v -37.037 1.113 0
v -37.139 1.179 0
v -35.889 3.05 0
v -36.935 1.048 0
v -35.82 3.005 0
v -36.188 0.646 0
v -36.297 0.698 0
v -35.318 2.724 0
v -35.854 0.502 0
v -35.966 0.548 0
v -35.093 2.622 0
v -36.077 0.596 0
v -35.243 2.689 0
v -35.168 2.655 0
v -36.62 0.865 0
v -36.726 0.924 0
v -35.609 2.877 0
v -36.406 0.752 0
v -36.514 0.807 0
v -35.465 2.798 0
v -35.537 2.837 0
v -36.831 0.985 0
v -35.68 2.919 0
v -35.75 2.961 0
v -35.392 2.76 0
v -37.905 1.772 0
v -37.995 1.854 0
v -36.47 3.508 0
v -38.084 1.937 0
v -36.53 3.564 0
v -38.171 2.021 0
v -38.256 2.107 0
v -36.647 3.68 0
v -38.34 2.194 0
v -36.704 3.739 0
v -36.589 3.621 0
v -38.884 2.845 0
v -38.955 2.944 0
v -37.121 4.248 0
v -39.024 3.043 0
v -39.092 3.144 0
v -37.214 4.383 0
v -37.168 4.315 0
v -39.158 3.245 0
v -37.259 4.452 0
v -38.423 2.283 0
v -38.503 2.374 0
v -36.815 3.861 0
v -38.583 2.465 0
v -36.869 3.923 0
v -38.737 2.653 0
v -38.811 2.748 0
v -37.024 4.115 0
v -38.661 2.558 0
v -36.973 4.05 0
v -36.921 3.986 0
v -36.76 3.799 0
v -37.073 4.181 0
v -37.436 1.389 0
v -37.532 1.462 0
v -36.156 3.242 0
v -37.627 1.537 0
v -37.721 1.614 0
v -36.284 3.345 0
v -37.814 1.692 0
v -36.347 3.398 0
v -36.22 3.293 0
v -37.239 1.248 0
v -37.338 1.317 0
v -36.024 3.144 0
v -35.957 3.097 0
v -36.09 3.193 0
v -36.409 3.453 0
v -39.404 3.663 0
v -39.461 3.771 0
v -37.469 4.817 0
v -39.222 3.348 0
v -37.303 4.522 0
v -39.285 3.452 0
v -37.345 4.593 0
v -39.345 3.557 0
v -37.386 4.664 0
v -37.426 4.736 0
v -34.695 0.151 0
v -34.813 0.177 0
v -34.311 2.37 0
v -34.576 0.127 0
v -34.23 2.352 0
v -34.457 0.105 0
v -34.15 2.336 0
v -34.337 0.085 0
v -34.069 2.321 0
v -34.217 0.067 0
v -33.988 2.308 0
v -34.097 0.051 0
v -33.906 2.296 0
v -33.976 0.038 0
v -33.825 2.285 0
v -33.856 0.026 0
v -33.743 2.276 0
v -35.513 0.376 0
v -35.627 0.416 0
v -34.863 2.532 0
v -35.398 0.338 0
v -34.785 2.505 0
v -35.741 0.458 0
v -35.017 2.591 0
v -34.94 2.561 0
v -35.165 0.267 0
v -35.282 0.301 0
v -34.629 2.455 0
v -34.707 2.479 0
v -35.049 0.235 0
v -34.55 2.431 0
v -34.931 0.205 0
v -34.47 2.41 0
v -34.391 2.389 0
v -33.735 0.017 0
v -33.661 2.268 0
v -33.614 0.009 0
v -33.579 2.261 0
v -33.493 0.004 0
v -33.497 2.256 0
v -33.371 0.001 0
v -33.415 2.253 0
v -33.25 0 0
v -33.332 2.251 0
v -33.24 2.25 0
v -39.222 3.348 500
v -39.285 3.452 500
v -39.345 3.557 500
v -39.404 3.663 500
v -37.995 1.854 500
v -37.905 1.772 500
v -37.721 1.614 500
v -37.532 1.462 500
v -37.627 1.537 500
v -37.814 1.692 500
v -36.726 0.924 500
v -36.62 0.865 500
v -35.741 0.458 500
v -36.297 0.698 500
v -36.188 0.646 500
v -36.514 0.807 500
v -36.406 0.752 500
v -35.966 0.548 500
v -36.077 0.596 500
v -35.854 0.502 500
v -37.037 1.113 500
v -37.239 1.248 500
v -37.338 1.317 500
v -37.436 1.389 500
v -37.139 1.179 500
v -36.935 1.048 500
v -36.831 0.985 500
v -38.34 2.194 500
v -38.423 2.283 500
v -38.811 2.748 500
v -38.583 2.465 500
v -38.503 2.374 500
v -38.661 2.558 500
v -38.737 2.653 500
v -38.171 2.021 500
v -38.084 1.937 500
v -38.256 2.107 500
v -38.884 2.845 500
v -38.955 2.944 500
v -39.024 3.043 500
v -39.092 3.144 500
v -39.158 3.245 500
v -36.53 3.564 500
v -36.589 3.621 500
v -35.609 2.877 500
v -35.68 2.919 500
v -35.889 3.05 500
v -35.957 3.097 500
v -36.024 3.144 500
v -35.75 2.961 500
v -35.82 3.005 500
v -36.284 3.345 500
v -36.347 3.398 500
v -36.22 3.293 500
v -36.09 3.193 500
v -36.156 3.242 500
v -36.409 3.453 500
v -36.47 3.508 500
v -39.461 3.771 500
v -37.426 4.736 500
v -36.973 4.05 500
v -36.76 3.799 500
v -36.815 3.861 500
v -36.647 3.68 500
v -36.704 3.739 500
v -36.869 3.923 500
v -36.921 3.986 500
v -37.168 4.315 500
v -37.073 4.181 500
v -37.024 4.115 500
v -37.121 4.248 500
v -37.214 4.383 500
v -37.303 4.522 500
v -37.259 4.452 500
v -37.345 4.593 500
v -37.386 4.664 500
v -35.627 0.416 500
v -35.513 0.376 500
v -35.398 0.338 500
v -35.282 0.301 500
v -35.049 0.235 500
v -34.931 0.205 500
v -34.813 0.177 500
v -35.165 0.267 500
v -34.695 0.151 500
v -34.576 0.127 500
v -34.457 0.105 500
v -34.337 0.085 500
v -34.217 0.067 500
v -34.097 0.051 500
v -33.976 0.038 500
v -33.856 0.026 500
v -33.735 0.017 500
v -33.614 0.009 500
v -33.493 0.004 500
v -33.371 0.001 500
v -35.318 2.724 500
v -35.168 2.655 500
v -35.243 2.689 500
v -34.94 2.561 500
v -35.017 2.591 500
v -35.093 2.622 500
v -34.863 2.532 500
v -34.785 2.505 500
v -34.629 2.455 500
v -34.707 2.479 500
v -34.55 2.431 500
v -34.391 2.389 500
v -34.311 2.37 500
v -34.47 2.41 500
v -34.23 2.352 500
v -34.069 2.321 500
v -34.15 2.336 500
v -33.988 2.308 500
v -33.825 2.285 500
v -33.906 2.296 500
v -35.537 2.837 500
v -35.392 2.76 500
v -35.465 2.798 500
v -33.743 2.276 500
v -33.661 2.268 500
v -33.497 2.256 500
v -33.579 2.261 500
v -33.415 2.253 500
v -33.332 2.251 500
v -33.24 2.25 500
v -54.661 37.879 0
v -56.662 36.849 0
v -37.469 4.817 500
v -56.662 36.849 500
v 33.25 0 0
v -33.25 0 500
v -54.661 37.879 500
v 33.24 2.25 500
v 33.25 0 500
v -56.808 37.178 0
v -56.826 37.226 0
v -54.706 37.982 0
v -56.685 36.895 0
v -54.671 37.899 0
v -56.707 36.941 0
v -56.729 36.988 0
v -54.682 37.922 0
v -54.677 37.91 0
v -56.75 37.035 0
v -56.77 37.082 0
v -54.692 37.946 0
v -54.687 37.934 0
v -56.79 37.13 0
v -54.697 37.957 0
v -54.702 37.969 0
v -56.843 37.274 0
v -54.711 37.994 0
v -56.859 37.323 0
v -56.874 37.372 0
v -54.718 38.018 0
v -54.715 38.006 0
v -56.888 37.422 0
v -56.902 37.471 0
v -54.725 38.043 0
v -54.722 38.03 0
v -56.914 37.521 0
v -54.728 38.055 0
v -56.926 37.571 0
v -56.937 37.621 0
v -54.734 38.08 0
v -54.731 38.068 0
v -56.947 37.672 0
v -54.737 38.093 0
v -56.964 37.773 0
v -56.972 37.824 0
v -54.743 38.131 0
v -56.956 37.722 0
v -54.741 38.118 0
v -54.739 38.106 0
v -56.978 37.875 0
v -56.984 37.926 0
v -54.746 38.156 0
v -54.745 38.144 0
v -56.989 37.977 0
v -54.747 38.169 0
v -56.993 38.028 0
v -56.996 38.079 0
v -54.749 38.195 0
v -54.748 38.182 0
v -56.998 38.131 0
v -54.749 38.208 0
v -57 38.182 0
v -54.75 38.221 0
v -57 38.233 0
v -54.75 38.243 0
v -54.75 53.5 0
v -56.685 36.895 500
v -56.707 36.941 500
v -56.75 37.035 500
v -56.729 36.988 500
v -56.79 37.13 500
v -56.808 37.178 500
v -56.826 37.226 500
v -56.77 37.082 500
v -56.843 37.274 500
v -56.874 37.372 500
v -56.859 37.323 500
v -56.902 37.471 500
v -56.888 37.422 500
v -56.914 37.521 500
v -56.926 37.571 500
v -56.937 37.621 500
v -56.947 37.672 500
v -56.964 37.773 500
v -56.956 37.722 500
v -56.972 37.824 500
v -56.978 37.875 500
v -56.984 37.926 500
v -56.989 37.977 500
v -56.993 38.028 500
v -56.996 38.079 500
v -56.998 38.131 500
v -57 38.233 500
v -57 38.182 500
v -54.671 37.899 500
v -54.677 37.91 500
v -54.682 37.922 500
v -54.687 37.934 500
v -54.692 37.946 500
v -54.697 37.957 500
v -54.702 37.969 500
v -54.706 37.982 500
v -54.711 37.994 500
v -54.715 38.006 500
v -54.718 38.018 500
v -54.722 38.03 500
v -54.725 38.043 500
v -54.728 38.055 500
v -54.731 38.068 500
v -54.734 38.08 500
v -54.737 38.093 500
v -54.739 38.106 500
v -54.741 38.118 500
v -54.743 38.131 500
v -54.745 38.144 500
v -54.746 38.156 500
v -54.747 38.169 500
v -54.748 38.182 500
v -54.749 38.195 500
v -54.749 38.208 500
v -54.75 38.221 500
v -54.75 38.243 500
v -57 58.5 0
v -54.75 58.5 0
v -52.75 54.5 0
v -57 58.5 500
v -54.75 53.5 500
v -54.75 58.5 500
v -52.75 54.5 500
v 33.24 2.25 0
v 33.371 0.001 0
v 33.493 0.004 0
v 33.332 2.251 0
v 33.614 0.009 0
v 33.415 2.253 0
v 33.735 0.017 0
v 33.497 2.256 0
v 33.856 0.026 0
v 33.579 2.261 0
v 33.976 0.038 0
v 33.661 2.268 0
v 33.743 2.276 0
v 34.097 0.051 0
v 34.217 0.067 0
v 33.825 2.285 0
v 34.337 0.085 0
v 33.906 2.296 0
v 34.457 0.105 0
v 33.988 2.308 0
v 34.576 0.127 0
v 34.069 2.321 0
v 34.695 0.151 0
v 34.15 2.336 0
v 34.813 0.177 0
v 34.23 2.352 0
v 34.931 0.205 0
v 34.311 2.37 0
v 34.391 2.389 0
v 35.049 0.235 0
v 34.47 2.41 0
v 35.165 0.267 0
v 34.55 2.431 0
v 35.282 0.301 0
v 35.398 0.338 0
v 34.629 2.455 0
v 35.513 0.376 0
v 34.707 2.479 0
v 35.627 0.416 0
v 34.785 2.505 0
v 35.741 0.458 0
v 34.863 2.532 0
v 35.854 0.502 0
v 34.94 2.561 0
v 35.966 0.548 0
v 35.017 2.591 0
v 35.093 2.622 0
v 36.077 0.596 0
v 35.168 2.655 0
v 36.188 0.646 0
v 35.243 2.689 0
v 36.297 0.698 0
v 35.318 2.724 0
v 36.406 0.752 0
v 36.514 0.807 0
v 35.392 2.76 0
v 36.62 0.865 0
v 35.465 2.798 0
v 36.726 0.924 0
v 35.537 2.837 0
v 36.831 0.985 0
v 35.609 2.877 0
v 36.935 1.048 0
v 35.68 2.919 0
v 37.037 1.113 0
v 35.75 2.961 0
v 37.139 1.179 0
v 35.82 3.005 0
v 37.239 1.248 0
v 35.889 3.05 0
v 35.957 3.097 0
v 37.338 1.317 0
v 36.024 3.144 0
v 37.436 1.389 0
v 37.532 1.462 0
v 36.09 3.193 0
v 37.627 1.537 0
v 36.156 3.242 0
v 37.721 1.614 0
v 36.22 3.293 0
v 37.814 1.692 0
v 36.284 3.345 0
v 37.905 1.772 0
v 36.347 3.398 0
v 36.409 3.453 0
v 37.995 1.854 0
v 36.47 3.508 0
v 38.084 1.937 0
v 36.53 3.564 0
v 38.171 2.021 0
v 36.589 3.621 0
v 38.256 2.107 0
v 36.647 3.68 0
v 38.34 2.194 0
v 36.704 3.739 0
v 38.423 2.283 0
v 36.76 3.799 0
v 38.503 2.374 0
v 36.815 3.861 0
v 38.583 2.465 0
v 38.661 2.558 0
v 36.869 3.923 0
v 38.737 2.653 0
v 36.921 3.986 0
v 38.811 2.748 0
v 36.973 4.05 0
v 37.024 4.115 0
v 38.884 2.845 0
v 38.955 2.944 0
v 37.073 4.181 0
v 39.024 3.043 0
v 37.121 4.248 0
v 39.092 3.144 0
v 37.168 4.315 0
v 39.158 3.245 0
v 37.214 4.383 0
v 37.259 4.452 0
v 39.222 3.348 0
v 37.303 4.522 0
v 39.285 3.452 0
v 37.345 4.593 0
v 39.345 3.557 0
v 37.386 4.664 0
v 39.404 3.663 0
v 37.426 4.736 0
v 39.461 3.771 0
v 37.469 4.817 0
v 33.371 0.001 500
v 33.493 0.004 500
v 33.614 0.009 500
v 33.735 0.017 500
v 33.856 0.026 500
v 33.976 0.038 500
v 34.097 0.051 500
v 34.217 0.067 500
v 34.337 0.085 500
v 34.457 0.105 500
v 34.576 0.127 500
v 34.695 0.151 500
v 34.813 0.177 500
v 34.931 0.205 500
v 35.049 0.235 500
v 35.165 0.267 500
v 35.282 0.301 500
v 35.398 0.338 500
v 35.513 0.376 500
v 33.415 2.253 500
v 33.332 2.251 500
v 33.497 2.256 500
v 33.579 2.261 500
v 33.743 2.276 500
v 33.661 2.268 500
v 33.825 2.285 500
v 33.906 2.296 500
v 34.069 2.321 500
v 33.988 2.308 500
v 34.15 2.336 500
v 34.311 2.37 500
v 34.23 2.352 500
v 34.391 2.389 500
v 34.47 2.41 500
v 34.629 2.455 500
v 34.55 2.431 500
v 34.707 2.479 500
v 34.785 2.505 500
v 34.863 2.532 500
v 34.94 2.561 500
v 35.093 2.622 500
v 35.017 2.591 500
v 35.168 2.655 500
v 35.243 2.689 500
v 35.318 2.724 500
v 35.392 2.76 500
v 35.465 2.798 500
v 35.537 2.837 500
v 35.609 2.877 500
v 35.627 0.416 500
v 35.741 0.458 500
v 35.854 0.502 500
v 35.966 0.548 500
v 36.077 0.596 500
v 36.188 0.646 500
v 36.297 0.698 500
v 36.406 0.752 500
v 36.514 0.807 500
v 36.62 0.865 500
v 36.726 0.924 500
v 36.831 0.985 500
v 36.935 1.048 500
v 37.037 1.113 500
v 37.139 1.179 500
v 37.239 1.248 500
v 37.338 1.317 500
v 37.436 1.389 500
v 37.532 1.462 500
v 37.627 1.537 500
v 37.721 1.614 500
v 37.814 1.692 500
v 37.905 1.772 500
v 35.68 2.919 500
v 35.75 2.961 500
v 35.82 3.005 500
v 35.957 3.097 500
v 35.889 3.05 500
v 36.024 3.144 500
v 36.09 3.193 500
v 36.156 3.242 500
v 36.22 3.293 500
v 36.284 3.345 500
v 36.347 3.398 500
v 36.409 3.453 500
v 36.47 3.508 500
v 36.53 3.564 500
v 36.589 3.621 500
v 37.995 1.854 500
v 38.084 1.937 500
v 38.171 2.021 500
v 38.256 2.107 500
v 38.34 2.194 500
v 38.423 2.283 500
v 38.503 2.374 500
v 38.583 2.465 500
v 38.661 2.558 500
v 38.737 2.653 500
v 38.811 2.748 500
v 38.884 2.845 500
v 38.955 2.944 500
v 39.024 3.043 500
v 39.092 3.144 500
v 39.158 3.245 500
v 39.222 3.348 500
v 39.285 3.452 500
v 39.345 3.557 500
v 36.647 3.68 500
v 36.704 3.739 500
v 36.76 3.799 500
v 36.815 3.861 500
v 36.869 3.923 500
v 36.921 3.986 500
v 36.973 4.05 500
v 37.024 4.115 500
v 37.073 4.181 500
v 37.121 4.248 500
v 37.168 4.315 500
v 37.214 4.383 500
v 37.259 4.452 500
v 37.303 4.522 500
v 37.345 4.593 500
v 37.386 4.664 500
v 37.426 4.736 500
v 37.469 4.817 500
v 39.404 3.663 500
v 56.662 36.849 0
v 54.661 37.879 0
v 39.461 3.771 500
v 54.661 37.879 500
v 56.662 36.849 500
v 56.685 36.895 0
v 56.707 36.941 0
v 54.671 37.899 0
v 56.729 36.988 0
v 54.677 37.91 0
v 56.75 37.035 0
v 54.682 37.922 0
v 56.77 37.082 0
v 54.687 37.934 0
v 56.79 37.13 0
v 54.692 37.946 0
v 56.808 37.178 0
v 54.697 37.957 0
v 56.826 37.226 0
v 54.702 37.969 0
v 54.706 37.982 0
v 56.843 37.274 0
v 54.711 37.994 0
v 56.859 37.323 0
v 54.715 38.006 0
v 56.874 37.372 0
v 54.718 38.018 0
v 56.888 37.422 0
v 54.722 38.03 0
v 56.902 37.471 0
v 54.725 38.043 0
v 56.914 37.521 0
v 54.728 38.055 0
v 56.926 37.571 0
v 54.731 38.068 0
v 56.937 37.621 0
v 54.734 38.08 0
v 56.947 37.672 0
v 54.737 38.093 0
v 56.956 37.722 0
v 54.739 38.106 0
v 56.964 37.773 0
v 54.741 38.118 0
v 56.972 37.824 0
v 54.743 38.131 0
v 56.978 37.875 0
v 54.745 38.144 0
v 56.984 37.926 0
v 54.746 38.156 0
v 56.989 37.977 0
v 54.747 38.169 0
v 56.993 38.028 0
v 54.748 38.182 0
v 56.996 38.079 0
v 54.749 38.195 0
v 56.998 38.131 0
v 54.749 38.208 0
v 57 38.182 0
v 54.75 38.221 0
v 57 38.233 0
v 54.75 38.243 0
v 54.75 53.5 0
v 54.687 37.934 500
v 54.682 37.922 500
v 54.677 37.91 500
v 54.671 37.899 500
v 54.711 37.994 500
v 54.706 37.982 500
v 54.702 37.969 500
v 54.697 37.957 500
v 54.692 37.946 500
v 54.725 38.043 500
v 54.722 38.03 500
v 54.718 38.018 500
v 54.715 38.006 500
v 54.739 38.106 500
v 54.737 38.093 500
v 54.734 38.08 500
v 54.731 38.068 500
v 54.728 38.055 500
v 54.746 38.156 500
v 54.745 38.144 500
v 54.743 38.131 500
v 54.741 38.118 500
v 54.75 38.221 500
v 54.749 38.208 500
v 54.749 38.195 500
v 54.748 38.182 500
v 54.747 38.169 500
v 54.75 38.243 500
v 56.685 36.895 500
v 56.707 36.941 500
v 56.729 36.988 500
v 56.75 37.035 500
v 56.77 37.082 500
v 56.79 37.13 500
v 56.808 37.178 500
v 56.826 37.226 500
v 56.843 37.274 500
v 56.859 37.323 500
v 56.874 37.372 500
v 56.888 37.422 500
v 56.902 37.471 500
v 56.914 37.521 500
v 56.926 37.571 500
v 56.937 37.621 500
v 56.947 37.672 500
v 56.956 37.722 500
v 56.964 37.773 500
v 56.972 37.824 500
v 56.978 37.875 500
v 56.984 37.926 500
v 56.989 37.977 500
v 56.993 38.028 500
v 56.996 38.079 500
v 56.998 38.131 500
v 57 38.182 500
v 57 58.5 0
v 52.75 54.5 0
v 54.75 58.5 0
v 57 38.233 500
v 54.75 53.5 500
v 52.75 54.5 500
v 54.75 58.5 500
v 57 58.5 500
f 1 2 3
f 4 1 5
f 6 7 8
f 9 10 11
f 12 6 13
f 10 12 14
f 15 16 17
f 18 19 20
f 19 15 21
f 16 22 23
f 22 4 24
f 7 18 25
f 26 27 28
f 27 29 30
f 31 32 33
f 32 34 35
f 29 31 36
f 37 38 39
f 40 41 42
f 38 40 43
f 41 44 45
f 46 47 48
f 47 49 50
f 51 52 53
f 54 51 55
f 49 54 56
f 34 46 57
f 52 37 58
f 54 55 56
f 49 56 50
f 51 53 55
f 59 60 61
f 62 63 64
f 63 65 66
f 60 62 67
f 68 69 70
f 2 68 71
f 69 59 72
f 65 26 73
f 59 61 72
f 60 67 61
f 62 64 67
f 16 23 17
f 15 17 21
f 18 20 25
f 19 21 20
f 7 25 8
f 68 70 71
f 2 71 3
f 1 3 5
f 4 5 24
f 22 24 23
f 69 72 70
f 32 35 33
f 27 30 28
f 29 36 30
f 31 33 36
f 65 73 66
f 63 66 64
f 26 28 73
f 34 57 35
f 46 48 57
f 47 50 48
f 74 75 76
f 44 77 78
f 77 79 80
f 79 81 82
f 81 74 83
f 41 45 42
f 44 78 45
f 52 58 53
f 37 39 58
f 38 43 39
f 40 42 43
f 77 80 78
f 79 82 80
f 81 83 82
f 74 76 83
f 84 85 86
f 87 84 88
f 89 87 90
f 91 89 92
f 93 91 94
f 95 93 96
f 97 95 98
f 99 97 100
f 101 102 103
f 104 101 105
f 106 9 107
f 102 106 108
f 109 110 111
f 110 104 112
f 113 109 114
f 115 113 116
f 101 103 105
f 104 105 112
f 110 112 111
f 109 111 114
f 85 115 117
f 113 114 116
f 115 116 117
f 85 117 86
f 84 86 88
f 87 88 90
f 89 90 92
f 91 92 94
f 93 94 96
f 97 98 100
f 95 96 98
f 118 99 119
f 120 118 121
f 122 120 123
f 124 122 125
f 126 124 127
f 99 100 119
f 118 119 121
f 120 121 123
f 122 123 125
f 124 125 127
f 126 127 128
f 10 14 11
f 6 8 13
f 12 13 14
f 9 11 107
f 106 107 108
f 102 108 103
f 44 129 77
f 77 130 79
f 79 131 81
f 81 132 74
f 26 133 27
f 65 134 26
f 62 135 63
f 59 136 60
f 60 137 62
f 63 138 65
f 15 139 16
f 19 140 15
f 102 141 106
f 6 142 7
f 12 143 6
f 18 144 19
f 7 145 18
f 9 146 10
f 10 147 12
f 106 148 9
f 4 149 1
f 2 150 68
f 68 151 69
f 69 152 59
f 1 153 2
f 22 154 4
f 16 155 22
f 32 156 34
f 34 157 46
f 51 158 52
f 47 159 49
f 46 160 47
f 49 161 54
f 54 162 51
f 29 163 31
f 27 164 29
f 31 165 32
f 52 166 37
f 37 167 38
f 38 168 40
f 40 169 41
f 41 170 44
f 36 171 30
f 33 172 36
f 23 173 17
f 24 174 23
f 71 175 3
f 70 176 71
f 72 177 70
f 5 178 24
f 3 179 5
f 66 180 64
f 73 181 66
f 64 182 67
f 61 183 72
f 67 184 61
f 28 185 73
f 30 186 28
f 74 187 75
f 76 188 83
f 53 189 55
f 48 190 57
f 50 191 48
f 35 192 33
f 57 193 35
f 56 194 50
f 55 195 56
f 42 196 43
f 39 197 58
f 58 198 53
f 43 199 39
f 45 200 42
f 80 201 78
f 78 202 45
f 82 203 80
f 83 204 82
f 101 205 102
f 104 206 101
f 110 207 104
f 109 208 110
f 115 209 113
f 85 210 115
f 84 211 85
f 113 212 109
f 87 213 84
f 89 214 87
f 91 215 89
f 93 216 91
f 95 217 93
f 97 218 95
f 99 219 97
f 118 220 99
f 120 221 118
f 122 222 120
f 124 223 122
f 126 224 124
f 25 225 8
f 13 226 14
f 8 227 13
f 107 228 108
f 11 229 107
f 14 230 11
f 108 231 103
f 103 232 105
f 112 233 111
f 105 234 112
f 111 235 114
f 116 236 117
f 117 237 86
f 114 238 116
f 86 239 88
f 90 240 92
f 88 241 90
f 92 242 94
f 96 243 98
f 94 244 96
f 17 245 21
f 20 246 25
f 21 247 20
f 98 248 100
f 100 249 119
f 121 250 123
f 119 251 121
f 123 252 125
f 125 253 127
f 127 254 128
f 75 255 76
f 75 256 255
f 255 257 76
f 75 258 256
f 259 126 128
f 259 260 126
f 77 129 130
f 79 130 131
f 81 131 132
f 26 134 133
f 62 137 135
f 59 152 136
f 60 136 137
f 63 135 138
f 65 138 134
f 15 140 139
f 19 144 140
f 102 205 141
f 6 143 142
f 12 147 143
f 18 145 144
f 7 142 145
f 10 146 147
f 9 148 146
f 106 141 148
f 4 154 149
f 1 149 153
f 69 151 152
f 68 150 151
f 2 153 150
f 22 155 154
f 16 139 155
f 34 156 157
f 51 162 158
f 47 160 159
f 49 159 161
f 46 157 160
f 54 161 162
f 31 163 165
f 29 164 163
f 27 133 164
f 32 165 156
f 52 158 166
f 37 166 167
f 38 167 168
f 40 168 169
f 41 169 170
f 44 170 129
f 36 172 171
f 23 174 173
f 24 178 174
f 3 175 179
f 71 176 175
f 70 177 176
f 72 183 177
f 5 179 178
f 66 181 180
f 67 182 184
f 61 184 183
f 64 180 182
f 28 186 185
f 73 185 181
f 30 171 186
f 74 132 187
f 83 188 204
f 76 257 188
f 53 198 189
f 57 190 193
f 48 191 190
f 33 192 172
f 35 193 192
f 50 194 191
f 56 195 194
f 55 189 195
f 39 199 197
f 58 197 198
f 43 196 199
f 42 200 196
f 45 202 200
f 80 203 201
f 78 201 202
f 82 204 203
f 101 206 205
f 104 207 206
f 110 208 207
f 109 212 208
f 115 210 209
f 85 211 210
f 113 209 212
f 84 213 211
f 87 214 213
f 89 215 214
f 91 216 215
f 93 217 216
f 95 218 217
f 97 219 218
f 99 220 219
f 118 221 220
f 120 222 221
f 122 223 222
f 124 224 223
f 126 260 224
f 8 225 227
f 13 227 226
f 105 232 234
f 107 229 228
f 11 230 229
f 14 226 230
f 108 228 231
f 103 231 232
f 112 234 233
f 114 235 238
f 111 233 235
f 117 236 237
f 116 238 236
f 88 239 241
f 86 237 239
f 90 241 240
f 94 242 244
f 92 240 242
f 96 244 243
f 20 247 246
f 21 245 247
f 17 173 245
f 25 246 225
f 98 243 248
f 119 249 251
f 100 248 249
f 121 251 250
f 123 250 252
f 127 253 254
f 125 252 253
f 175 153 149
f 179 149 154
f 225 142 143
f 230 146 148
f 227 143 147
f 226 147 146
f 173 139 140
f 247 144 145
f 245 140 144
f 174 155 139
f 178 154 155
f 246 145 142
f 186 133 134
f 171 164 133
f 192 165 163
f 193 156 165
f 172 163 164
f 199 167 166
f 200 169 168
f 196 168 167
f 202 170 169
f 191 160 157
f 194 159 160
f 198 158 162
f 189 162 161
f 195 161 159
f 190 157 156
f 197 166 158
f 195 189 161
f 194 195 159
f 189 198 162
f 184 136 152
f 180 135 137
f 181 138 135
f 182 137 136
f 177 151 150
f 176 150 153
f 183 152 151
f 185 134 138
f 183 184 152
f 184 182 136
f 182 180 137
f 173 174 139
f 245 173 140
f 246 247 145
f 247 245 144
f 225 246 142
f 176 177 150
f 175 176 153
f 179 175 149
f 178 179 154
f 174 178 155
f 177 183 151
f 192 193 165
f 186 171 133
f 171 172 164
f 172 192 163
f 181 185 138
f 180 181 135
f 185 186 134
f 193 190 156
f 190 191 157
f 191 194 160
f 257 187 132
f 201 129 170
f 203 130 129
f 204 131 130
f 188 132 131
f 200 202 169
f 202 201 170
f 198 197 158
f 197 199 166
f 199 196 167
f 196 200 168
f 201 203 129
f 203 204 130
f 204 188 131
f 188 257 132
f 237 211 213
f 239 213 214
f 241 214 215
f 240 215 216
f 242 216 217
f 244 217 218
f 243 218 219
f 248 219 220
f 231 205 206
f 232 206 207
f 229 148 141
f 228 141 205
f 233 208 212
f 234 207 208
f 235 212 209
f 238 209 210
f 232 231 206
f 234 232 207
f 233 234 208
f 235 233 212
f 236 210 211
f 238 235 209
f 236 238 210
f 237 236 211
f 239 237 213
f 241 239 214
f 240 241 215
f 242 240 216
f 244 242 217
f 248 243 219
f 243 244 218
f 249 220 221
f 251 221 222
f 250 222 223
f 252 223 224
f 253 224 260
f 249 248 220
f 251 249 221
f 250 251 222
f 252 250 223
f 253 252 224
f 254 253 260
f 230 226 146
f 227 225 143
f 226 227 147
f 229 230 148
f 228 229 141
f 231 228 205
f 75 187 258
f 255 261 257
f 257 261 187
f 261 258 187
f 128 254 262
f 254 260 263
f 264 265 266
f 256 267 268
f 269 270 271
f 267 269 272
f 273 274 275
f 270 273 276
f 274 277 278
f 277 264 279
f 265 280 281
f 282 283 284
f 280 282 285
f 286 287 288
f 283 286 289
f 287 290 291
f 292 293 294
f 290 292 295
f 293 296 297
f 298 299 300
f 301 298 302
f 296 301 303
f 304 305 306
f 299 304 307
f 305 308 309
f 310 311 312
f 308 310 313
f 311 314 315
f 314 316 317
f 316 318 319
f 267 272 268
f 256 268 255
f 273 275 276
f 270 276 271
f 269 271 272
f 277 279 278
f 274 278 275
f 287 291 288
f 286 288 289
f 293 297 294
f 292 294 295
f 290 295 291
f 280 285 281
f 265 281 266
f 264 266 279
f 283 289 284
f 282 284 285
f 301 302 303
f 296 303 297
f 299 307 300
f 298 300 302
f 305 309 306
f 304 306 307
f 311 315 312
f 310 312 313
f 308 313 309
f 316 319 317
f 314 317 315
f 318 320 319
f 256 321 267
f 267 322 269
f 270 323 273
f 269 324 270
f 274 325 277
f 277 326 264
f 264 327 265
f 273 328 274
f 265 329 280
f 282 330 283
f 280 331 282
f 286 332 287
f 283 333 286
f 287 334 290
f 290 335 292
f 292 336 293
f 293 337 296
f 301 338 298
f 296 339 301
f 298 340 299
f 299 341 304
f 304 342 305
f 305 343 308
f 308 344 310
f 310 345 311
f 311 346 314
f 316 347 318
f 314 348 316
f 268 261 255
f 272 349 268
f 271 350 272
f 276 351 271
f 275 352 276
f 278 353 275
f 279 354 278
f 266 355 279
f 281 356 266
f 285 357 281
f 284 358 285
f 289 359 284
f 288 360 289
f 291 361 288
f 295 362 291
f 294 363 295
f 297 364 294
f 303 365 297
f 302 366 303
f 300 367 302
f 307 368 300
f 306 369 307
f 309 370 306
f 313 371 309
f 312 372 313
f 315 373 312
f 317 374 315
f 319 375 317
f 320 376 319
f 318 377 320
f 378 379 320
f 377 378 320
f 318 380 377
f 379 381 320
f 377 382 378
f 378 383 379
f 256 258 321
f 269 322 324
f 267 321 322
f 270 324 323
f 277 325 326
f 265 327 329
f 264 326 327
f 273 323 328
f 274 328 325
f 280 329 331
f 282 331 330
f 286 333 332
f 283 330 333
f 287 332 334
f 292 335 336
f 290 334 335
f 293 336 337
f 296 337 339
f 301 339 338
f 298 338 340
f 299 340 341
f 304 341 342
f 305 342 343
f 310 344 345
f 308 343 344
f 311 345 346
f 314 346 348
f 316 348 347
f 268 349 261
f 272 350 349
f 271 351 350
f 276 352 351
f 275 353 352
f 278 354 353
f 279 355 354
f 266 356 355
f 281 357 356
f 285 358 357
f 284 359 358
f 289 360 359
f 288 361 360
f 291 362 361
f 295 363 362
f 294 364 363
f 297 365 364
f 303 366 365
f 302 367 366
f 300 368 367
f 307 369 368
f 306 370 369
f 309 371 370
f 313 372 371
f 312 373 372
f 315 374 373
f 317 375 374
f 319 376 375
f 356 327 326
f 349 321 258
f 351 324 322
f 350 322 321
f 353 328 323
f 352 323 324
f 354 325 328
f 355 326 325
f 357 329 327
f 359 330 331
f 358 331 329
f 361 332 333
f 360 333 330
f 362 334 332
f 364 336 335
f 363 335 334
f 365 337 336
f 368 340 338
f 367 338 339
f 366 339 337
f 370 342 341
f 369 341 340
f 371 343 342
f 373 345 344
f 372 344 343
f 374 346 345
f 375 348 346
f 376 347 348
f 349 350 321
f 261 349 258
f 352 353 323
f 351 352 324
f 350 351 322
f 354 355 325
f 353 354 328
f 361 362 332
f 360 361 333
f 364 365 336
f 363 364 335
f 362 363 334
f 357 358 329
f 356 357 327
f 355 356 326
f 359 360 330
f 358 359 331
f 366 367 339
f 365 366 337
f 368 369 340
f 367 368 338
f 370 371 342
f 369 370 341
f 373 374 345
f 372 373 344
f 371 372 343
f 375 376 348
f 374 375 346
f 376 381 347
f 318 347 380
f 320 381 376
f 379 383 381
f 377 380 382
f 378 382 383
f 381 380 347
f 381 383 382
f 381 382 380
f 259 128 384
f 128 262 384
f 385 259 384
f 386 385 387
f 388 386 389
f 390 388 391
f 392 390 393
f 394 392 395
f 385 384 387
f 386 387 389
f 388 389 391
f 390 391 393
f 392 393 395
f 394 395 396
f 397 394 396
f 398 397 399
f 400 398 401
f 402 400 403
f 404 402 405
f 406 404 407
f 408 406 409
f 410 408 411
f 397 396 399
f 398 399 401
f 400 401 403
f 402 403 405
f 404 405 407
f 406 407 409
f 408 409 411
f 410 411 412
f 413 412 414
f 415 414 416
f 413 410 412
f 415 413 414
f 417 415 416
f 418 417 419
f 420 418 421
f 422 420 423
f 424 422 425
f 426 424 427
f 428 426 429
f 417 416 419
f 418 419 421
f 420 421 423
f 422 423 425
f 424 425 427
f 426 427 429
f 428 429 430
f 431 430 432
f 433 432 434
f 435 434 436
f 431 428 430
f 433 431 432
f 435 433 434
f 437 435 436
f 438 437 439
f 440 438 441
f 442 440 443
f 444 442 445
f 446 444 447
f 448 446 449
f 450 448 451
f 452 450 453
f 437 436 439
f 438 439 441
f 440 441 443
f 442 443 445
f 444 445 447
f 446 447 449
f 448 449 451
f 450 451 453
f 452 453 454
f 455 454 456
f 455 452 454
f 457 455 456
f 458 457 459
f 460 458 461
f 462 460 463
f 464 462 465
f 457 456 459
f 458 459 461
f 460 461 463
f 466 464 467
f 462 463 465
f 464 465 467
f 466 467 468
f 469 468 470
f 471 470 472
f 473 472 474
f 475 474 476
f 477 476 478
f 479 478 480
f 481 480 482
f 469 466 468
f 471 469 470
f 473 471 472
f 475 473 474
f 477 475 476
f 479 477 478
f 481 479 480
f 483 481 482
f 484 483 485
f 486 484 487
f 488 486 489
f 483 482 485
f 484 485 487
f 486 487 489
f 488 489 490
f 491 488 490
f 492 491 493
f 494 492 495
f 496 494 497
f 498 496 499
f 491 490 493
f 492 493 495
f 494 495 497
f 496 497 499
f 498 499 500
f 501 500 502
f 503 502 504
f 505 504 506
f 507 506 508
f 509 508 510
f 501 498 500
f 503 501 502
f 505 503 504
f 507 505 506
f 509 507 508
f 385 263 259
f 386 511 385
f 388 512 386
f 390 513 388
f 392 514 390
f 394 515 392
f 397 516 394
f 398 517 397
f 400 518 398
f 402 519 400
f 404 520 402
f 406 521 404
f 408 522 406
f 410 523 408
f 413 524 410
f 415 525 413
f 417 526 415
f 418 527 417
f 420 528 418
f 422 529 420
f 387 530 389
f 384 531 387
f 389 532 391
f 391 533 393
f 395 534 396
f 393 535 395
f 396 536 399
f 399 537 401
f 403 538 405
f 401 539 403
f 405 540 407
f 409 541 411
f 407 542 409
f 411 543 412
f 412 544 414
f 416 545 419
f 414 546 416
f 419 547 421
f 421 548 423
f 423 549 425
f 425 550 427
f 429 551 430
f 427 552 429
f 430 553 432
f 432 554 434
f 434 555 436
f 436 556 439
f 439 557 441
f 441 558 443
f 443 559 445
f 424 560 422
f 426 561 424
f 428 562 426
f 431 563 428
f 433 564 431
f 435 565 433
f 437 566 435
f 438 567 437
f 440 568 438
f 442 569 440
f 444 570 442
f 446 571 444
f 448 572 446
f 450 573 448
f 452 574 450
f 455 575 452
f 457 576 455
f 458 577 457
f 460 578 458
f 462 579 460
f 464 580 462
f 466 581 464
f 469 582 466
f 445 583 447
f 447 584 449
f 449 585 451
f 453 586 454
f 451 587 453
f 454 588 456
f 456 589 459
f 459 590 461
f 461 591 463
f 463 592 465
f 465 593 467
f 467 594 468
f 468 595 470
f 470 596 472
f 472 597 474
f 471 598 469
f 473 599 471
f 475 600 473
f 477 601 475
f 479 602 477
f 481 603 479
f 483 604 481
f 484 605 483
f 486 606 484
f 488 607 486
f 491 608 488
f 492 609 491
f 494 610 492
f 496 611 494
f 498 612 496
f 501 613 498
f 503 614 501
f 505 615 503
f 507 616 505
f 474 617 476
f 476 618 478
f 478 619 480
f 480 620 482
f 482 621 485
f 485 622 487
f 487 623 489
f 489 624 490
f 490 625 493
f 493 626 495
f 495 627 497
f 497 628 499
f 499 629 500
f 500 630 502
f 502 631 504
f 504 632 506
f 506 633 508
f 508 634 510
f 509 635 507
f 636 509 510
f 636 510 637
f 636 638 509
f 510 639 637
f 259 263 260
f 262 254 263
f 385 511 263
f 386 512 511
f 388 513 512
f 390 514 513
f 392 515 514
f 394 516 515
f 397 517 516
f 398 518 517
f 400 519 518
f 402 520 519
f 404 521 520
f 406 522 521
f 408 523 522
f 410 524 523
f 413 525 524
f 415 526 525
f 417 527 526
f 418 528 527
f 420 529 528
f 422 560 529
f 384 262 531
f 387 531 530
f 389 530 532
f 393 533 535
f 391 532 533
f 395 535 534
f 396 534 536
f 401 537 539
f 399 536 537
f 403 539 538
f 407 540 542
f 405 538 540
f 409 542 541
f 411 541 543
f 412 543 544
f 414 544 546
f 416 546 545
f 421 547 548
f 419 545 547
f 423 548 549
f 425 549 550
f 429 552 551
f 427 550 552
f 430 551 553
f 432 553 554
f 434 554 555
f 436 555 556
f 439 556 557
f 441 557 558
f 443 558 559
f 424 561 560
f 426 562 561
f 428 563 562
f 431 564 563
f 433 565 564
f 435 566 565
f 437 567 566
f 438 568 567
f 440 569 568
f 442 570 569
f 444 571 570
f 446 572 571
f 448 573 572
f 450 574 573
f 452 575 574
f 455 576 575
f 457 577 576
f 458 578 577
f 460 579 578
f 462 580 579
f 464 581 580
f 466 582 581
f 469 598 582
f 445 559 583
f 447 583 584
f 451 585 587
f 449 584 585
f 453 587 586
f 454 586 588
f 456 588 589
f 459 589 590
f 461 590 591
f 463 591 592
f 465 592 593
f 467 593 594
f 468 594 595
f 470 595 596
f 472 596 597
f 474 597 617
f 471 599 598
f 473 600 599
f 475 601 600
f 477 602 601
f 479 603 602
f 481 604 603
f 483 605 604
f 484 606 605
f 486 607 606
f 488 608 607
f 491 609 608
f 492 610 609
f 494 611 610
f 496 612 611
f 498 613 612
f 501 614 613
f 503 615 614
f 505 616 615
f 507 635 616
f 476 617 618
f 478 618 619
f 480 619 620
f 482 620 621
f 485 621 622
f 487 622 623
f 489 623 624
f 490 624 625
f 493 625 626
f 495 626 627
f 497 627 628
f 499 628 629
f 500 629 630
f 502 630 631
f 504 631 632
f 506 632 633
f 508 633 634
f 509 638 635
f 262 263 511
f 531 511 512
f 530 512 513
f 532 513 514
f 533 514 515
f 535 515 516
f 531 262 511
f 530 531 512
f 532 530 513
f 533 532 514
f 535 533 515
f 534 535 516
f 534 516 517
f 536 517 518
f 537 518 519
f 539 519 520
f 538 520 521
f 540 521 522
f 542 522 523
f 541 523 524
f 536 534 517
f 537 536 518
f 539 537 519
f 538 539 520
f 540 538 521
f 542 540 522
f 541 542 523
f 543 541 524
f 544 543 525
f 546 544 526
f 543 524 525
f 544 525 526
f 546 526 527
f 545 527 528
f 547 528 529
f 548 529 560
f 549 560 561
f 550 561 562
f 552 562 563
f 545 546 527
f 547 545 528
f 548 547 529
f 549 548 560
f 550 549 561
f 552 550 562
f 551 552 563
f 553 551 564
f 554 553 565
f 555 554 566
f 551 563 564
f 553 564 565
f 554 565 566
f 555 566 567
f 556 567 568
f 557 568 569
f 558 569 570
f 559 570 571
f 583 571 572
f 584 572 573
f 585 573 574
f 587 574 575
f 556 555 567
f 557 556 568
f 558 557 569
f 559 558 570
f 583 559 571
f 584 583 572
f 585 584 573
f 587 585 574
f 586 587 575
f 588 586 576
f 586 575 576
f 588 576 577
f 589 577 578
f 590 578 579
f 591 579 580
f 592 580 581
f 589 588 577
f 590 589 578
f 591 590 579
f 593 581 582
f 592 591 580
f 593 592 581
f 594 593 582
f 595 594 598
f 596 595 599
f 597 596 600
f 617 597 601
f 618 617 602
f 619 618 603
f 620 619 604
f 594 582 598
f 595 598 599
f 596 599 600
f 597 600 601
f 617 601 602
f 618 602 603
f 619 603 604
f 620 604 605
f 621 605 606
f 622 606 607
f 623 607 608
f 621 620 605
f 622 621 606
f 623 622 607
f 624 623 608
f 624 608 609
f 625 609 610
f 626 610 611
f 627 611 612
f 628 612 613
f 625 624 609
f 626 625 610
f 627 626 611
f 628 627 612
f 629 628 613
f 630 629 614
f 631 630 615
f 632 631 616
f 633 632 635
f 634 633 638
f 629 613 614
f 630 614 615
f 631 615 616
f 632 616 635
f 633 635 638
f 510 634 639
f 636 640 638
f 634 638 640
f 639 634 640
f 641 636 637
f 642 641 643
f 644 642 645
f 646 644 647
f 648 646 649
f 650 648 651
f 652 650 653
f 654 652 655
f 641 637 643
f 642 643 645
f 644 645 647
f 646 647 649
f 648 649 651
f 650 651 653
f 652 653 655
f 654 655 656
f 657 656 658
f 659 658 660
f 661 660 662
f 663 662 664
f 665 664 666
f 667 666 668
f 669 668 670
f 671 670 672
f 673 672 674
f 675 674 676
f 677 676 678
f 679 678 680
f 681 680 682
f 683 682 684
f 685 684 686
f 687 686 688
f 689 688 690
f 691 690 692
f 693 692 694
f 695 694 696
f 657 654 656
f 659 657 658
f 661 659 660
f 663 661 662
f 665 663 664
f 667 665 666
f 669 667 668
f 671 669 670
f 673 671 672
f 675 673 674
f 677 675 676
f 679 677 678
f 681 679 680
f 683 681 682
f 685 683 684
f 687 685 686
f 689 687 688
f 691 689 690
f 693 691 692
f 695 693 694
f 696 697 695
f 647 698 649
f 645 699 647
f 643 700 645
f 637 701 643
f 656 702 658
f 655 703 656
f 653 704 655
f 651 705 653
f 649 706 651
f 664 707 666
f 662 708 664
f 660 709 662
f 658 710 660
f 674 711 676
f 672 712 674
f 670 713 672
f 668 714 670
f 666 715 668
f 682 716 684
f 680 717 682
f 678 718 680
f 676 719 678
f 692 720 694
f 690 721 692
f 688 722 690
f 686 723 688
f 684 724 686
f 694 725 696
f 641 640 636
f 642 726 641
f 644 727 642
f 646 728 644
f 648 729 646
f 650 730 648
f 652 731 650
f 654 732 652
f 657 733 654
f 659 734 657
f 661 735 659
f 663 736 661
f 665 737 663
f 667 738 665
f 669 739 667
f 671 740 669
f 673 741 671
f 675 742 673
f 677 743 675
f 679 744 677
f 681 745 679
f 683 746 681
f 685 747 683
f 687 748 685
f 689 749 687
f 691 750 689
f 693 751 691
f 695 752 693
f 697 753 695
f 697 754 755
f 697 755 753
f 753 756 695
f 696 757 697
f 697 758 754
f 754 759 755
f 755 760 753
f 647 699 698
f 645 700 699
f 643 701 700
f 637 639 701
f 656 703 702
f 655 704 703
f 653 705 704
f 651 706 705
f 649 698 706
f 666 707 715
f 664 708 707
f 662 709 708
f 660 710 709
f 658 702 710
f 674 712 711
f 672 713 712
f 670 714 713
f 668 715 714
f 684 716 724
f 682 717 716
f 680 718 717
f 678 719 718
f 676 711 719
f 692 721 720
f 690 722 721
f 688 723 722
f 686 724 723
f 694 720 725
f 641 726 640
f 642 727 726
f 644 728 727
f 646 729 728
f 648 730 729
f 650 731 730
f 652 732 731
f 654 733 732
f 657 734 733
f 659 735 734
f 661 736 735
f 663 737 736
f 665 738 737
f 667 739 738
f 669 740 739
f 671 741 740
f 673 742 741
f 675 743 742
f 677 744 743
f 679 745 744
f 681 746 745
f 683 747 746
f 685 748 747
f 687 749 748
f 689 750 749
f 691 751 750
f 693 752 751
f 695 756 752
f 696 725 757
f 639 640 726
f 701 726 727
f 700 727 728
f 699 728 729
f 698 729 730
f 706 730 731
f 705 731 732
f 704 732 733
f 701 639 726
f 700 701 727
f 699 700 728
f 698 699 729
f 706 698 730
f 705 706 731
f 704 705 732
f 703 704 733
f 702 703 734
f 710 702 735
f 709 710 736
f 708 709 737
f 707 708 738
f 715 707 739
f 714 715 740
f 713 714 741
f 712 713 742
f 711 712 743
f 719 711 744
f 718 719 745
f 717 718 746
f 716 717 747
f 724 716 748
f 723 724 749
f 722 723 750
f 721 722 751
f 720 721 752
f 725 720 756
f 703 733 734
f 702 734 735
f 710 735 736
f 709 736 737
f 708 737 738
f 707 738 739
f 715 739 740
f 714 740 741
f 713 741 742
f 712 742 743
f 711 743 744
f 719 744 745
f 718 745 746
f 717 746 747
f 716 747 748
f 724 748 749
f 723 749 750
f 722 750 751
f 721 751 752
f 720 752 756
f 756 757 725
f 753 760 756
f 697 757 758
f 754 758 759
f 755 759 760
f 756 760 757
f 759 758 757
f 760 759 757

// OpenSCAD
$fn = 50;

difference() {
	union() {
		linear_extrude(height = 500.0) {
			polygon(points = [[56.9995601, 38.1820114], [56.9982404, 38.1306519], [56.9960415, 38.0793225], [56.9929638, 38.0280383], [56.9890084, 37.9768144], [56.9841763, 37.9256657], [56.978469, 37.8746072], [56.9718882, 37.823654], [56.9644358, 37.7728209], [56.956114, 37.7221229], [56.9469252, 37.6715749], [56.9368722, 37.6211916], [56.9259578, 37.5709879], [56.9141852, 37.5209784], [56.901558, 37.4711779], [56.8880798, 37.4216009], [56.8737546, 37.372262], [56.8585866, 37.3231757], [56.8425802, 37.2743563], [56.8257401, 37.2258182], [56.8080713, 37.1775755], [56.7895789, 37.1296426], [56.7702684, 37.0820333], [56.7501454, 37.0347617], [56.7292159, 36.9878416], [56.7074859, 36.9412868], [56.6849619, 36.895111], [56.6616504, 36.8493277], [39.460676, 3.7705308], [39.4038067, 3.663443], [39.3450911, 3.5573563], [39.2845467, 3.4523025], [39.2221918, 3.3483131], [39.158045, 3.2454194], [39.0921257, 3.1436522], [39.0244535, 3.043042], [38.9550488, 2.9436191], [38.8839324, 2.8454133], [38.8111257, 2.748454], [38.7366505, 2.6527704], [38.660529, 2.5583911], [38.5827843, 2.4653444], [38.5034396, 2.3736583], [38.4225187, 2.2833604], [38.3400458, 2.1944775], [38.2560458, 2.1070366], [38.1705439, 2.0210637], [38.0835656, 1.9365846], [37.9951371, 1.8536249], [37.905285, 1.7722092], [37.8140361, 1.692362], [37.7214179, 1.6141074], [37.6274581, 1.5374687], [37.532185, 1.4624691], [37.435627, 1.3891309], [37.3378133, 1.3174761], [37.2387731, 1.2475264], [37.1385362, 1.1793026], [37.0371326, 1.1128253], [36.9345928, 1.0481143], [36.8309475, 0.9851892], [36.7262278, 0.9240687], [36.6204652, 0.8647712], [36.5136914, 0.8073146], [36.4059383, 0.751716], [36.2972384, 0.6979921], [36.1876243, 0.6461591], [36.0771288, 0.5962325], [35.9657851, 0.5482272], [35.8536266, 0.5021578], [35.7406869, 0.4580379], [35.627, 0.4158809], [35.5126, 0.3756994], [35.3975211, 0.3375055], [35.2817979, 0.3013105], [35.1654652, 0.2671254], [35.0485578, 0.2349605], [34.9311108, 0.2048253], [34.8131595, 0.176729], [34.6947392, 0.1506799], [34.5758855, 0.1266858], [34.456634, 0.104754], [34.3370205, 0.0848911], [34.2170809, 0.067103], [34.0968512, 0.051395], [33.9763674, 0.0377719], [33.8556658, 0.0262377], [33.7347825, 0.0167959], [33.6137537, 0.0094493], [33.4926159, 0.0042002], [33.3714054, 0.0010501], [33.2501584, 0.0], [-33.2501584, 0.0], [-33.3714054, 0.0010501], [-33.4926159, 0.0042002], [-33.6137537, 0.0094493], [-33.7347825, 0.0167959], [-33.8556658, 0.0262377], [-33.9763674, 0.0377719], [-34.0968512, 0.051395], [-34.2170809, 0.067103], [-34.3370205, 0.0848911], [-34.456634, 0.104754], [-34.5758855, 0.1266858], [-34.6947392, 0.1506799], [-34.8131595, 0.176729], [-34.9311108, 0.2048253], [-35.0485578, 0.2349605], [-35.1654652, 0.2671254], [-35.2817979, 0.3013105], [-35.3975211, 0.3375055], [-35.5126, 0.3756994], [-35.627, 0.4158809], [-35.7406869, 0.4580379], [-35.8536266, 0.5021578], [-35.9657851, 0.5482272], [-36.0771288, 0.5962325], [-36.1876243, 0.6461591], [-36.2972384, 0.6979921], [-36.4059383, 0.751716], [-36.5136914, 0.8073146], [-36.6204652, 0.8647712], [-36.7262278, 0.9240687], [-36.8309475, 0.9851892], [-36.9345928, 1.0481143], [-37.0371326, 1.1128253], [-37.1385362, 1.1793026], [-37.2387731, 1.2475264], [-37.3378133, 1.3174761], [-37.435627, 1.3891309], [-37.532185, 1.4624691], [-37.6274581, 1.5374687], [-37.7214179, 1.6141074], [-37.8140361, 1.692362], [-37.905285, 1.7722092], [-37.9951371, 1.8536249], [-38.0835656, 1.9365846], [-38.1705439, 2.0210637], [-38.2560458, 2.1070366], [-38.3400458, 2.1944775], [-38.4225187, 2.2833604], [-38.5034396, 2.3736583], [-38.5827843, 2.4653444], [-38.660529, 2.5583911], [-38.7366505, 2.6527704], [-38.8111257, 2.748454], [-38.8839324, 2.8454133], [-38.9550488, 2.9436191], [-39.0244535, 3.043042], [-39.0921257, 3.1436522], [-39.158045, 3.2454194], [-39.2221918, 3.3483131], [-39.2845467, 3.4523025], [-39.3450911, 3.5573563], [-39.4038067, 3.663443], [-39.460676, 3.7705308], [-56.6616504, 36.8493277], [-56.6849619, 36.895111], [-56.7074859, 36.9412868], [-56.7292159, 36.9878416], [-56.7501454, 37.0347617], [-56.7702684, 37.0820333], [-56.7895789, 37.1296426], [-56.8080713, 37.1775755], [-56.8257401, 37.2258182], [-56.8425802, 37.2743563], [-56.8585866, 37.3231757], [-56.8737546, 37.372262], [-56.8880798, 37.4216009], [-56.901558, 37.4711779], [-56.9141852, 37.5209784], [-56.9259578, 37.5709879], [-56.9368722, 37.6211916], [-56.9469252, 37.6715749], [-56.956114, 37.7221229], [-56.9644358, 37.7728209], [-56.9718882, 37.823654], [-56.978469, 37.8746072], [-56.9841763, 37.9256657], [-56.9890084, 37.9768144], [-56.9929638, 38.0280383], [-56.9960415, 38.0793225], [-56.9982404, 38.1306519], [-56.9995601, 38.1820114], [-57.0, 38.2333859], [-57.0, 58.5], [-54.75, 58.5], [-52.75, 54.5], [-54.75, 53.5], [-54.75, 38.2430192], [-54.7498075, 38.2205437], [-54.7494777, 38.2077052], [-54.748928, 38.1948743], [-54.7481587, 38.1820547], [-54.7471699, 38.1692501], [-54.745962, 38.1564643], [-54.7445354, 38.1437011], [-54.7428903, 38.1309642], [-54.7410275, 38.1182573], [-54.7389472, 38.1055842], [-54.7366503, 38.0929486], [-54.7341373, 38.0803542], [-54.731409, 38.0678046], [-54.7284662, 38.0553036], [-54.7253097, 38.0428549], [-54.7219405, 38.030462], [-54.7183596, 38.0181286], [-54.714568, 38.0058584], [-54.7105669, 37.9936549], [-54.7063573, 37.9815217], [-54.7019406, 37.9694623], [-54.697318, 37.9574804], [-54.6924909, 37.9455794], [-54.6874607, 37.9337628], [-54.6822289, 37.9220341], [-54.676797, 37.9103967], [-54.6711666, 37.898854], [-54.6609683, 37.8788246], [-37.4689335, 4.8172192], [-37.4257742, 4.735948], [-37.3859321, 4.6639618], [-37.3448492, 4.5926766], [-37.3025377, 4.5221136], [-37.2590103, 4.4522941], [-37.2142801, 4.383239], [-37.1683605, 4.3149691], [-37.1212653, 4.2475048], [-37.0730086, 4.1808663], [-37.0236049, 4.1150736], [-36.973069, 4.0501466], [-36.9214161, 3.9861046], [-36.8686617, 3.922967], [-36.8148216, 3.8607525], [-36.7599119, 3.79948], [-36.7039492, 3.7391677], [-36.6469503, 3.6798338], [-36.5889321, 3.6214961], [-36.5299122, 3.5641721], [-36.4699082, 3.5078789], [-36.4089382, 3.4526335], [-36.3470204, 3.3984525], [-36.2841734, 3.3453521], [-36.2204161, 3.2933482], [-36.1557677, 3.2424565], [-36.0902474, 3.1926922], [-36.023875, 3.1440702], [-35.9566703, 3.0966051], [-35.8886536, 3.0503112], [-35.8198453, 3.0052024], [-35.7502659, 2.9612922], [-35.6799364, 2.9185937], [-35.6088779, 2.8771199], [-35.5371117, 2.836883], [-35.4646593, 2.7978953], [-35.3915424, 2.7601683], [-35.3177831, 2.7237135], [-35.2434034, 2.6885417], [-35.1684256, 2.6546635], [-35.0928723, 2.6220891], [-35.0167661, 2.5908282], [-34.9401299, 2.5608903], [-34.8629866, 2.5322843], [-34.7853593, 2.5050187], [-34.7072715, 2.4791019], [-34.6287465, 2.4545415], [-34.5498078, 2.4313449], [-34.4704792, 2.409519], [-34.3907844, 2.3890705], [-34.3107475, 2.3700055], [-34.2303922, 2.3523296], [-34.1497429, 2.3360482], [-34.0688237, 2.3211662], [-33.9876589, 2.3076881], [-33.9062727, 2.2956178], [-33.8246897, 2.284959], [-33.7429343, 2.2757148], [-33.6610311, 2.2678882], [-33.5790046, 2.2614814], [-33.4968794, 2.2564963], [-33.4146802, 2.2529345], [-33.3324317, 2.250797], [-33.2404148, 2.25], [33.2404148, 2.25], [33.3324317, 2.250797], [33.4146802, 2.2529345], [33.4968794, 2.2564963], [33.5790046, 2.2614814], [33.6610311, 2.2678882], [33.7429343, 2.2757148], [33.8246897, 2.284959], [33.9062727, 2.2956178], [33.9876589, 2.3076881], [34.0688237, 2.3211662], [34.1497429, 2.3360482], [34.2303922, 2.3523296], [34.3107475, 2.3700055], [34.3907844, 2.3890705], [34.4704792, 2.409519], [34.5498078, 2.4313449], [34.6287465, 2.4545415], [34.7072715, 2.4791019], [34.7853593, 2.5050187], [34.8629866, 2.5322843], [34.9401299, 2.5608903], [35.0167661, 2.5908282], [35.0928723, 2.6220891], [35.1684256, 2.6546635], [35.2434034, 2.6885417], [35.3177831, 2.7237135], [35.3915424, 2.7601683], [35.4646593, 2.7978953], [35.5371117, 2.836883], [35.6088779, 2.8771199], [35.6799364, 2.9185937], [35.7502659, 2.9612922], [35.8198453, 3.0052024], [35.8886536, 3.0503112], [35.9566703, 3.0966051], [36.023875, 3.1440702], [36.0902474, 3.1926922], [36.1557677, 3.2424565], [36.2204161, 3.2933482], [36.2841734, 3.3453521], [36.3470204, 3.3984525], [36.4089382, 3.4526335], [36.4699082, 3.5078789], [36.5299122, 3.5641721], [36.5889321, 3.6214961], [36.6469503, 3.6798338], [36.7039492, 3.7391677], [36.7599119, 3.79948], [36.8148216, 3.8607525], [36.8686617, 3.922967], [36.9214161, 3.9861046], [36.973069, 4.0501466], [37.0236049, 4.1150736], [37.0730086, 4.1808663], [37.1212653, 4.2475048], [37.1683605, 4.3149691], [37.2142801, 4.383239], [37.2590103, 4.4522941], [37.3025377, 4.5221136], [37.3448492, 4.5926766], [37.3859321, 4.6639618], [37.4257742, 4.735948], [37.4689335, 4.8172192], [54.6609683, 37.8788246], [54.6711666, 37.898854], [54.676797, 37.9103967], [54.6822289, 37.9220341], [54.6874607, 37.9337628], [54.6924909, 37.9455794], [54.697318, 37.9574804], [54.7019406, 37.9694623], [54.7063573, 37.9815217], [54.7105669, 37.9936549], [54.714568, 38.0058584], [54.7183596, 38.0181286], [54.7219405, 38.030462], [54.7253097, 38.0428549], [54.7284662, 38.0553036], [54.731409, 38.0678046], [54.7341373, 38.0803542], [54.7366503, 38.0929486], [54.7389472, 38.1055842], [54.7410275, 38.1182573], [54.7428903, 38.1309642], [54.7445354, 38.1437011], [54.745962, 38.1564643], [54.7471699, 38.1692501], [54.7481587, 38.1820547], [54.748928, 38.1948743], [54.7494777, 38.2077052], [54.7498075, 38.2205437], [54.75, 38.2430192], [54.75, 53.5], [52.75, 54.5], [54.75, 58.5], [57.0, 58.5], [57.0, 38.2333859]]);
		}
	}
	union();
}
